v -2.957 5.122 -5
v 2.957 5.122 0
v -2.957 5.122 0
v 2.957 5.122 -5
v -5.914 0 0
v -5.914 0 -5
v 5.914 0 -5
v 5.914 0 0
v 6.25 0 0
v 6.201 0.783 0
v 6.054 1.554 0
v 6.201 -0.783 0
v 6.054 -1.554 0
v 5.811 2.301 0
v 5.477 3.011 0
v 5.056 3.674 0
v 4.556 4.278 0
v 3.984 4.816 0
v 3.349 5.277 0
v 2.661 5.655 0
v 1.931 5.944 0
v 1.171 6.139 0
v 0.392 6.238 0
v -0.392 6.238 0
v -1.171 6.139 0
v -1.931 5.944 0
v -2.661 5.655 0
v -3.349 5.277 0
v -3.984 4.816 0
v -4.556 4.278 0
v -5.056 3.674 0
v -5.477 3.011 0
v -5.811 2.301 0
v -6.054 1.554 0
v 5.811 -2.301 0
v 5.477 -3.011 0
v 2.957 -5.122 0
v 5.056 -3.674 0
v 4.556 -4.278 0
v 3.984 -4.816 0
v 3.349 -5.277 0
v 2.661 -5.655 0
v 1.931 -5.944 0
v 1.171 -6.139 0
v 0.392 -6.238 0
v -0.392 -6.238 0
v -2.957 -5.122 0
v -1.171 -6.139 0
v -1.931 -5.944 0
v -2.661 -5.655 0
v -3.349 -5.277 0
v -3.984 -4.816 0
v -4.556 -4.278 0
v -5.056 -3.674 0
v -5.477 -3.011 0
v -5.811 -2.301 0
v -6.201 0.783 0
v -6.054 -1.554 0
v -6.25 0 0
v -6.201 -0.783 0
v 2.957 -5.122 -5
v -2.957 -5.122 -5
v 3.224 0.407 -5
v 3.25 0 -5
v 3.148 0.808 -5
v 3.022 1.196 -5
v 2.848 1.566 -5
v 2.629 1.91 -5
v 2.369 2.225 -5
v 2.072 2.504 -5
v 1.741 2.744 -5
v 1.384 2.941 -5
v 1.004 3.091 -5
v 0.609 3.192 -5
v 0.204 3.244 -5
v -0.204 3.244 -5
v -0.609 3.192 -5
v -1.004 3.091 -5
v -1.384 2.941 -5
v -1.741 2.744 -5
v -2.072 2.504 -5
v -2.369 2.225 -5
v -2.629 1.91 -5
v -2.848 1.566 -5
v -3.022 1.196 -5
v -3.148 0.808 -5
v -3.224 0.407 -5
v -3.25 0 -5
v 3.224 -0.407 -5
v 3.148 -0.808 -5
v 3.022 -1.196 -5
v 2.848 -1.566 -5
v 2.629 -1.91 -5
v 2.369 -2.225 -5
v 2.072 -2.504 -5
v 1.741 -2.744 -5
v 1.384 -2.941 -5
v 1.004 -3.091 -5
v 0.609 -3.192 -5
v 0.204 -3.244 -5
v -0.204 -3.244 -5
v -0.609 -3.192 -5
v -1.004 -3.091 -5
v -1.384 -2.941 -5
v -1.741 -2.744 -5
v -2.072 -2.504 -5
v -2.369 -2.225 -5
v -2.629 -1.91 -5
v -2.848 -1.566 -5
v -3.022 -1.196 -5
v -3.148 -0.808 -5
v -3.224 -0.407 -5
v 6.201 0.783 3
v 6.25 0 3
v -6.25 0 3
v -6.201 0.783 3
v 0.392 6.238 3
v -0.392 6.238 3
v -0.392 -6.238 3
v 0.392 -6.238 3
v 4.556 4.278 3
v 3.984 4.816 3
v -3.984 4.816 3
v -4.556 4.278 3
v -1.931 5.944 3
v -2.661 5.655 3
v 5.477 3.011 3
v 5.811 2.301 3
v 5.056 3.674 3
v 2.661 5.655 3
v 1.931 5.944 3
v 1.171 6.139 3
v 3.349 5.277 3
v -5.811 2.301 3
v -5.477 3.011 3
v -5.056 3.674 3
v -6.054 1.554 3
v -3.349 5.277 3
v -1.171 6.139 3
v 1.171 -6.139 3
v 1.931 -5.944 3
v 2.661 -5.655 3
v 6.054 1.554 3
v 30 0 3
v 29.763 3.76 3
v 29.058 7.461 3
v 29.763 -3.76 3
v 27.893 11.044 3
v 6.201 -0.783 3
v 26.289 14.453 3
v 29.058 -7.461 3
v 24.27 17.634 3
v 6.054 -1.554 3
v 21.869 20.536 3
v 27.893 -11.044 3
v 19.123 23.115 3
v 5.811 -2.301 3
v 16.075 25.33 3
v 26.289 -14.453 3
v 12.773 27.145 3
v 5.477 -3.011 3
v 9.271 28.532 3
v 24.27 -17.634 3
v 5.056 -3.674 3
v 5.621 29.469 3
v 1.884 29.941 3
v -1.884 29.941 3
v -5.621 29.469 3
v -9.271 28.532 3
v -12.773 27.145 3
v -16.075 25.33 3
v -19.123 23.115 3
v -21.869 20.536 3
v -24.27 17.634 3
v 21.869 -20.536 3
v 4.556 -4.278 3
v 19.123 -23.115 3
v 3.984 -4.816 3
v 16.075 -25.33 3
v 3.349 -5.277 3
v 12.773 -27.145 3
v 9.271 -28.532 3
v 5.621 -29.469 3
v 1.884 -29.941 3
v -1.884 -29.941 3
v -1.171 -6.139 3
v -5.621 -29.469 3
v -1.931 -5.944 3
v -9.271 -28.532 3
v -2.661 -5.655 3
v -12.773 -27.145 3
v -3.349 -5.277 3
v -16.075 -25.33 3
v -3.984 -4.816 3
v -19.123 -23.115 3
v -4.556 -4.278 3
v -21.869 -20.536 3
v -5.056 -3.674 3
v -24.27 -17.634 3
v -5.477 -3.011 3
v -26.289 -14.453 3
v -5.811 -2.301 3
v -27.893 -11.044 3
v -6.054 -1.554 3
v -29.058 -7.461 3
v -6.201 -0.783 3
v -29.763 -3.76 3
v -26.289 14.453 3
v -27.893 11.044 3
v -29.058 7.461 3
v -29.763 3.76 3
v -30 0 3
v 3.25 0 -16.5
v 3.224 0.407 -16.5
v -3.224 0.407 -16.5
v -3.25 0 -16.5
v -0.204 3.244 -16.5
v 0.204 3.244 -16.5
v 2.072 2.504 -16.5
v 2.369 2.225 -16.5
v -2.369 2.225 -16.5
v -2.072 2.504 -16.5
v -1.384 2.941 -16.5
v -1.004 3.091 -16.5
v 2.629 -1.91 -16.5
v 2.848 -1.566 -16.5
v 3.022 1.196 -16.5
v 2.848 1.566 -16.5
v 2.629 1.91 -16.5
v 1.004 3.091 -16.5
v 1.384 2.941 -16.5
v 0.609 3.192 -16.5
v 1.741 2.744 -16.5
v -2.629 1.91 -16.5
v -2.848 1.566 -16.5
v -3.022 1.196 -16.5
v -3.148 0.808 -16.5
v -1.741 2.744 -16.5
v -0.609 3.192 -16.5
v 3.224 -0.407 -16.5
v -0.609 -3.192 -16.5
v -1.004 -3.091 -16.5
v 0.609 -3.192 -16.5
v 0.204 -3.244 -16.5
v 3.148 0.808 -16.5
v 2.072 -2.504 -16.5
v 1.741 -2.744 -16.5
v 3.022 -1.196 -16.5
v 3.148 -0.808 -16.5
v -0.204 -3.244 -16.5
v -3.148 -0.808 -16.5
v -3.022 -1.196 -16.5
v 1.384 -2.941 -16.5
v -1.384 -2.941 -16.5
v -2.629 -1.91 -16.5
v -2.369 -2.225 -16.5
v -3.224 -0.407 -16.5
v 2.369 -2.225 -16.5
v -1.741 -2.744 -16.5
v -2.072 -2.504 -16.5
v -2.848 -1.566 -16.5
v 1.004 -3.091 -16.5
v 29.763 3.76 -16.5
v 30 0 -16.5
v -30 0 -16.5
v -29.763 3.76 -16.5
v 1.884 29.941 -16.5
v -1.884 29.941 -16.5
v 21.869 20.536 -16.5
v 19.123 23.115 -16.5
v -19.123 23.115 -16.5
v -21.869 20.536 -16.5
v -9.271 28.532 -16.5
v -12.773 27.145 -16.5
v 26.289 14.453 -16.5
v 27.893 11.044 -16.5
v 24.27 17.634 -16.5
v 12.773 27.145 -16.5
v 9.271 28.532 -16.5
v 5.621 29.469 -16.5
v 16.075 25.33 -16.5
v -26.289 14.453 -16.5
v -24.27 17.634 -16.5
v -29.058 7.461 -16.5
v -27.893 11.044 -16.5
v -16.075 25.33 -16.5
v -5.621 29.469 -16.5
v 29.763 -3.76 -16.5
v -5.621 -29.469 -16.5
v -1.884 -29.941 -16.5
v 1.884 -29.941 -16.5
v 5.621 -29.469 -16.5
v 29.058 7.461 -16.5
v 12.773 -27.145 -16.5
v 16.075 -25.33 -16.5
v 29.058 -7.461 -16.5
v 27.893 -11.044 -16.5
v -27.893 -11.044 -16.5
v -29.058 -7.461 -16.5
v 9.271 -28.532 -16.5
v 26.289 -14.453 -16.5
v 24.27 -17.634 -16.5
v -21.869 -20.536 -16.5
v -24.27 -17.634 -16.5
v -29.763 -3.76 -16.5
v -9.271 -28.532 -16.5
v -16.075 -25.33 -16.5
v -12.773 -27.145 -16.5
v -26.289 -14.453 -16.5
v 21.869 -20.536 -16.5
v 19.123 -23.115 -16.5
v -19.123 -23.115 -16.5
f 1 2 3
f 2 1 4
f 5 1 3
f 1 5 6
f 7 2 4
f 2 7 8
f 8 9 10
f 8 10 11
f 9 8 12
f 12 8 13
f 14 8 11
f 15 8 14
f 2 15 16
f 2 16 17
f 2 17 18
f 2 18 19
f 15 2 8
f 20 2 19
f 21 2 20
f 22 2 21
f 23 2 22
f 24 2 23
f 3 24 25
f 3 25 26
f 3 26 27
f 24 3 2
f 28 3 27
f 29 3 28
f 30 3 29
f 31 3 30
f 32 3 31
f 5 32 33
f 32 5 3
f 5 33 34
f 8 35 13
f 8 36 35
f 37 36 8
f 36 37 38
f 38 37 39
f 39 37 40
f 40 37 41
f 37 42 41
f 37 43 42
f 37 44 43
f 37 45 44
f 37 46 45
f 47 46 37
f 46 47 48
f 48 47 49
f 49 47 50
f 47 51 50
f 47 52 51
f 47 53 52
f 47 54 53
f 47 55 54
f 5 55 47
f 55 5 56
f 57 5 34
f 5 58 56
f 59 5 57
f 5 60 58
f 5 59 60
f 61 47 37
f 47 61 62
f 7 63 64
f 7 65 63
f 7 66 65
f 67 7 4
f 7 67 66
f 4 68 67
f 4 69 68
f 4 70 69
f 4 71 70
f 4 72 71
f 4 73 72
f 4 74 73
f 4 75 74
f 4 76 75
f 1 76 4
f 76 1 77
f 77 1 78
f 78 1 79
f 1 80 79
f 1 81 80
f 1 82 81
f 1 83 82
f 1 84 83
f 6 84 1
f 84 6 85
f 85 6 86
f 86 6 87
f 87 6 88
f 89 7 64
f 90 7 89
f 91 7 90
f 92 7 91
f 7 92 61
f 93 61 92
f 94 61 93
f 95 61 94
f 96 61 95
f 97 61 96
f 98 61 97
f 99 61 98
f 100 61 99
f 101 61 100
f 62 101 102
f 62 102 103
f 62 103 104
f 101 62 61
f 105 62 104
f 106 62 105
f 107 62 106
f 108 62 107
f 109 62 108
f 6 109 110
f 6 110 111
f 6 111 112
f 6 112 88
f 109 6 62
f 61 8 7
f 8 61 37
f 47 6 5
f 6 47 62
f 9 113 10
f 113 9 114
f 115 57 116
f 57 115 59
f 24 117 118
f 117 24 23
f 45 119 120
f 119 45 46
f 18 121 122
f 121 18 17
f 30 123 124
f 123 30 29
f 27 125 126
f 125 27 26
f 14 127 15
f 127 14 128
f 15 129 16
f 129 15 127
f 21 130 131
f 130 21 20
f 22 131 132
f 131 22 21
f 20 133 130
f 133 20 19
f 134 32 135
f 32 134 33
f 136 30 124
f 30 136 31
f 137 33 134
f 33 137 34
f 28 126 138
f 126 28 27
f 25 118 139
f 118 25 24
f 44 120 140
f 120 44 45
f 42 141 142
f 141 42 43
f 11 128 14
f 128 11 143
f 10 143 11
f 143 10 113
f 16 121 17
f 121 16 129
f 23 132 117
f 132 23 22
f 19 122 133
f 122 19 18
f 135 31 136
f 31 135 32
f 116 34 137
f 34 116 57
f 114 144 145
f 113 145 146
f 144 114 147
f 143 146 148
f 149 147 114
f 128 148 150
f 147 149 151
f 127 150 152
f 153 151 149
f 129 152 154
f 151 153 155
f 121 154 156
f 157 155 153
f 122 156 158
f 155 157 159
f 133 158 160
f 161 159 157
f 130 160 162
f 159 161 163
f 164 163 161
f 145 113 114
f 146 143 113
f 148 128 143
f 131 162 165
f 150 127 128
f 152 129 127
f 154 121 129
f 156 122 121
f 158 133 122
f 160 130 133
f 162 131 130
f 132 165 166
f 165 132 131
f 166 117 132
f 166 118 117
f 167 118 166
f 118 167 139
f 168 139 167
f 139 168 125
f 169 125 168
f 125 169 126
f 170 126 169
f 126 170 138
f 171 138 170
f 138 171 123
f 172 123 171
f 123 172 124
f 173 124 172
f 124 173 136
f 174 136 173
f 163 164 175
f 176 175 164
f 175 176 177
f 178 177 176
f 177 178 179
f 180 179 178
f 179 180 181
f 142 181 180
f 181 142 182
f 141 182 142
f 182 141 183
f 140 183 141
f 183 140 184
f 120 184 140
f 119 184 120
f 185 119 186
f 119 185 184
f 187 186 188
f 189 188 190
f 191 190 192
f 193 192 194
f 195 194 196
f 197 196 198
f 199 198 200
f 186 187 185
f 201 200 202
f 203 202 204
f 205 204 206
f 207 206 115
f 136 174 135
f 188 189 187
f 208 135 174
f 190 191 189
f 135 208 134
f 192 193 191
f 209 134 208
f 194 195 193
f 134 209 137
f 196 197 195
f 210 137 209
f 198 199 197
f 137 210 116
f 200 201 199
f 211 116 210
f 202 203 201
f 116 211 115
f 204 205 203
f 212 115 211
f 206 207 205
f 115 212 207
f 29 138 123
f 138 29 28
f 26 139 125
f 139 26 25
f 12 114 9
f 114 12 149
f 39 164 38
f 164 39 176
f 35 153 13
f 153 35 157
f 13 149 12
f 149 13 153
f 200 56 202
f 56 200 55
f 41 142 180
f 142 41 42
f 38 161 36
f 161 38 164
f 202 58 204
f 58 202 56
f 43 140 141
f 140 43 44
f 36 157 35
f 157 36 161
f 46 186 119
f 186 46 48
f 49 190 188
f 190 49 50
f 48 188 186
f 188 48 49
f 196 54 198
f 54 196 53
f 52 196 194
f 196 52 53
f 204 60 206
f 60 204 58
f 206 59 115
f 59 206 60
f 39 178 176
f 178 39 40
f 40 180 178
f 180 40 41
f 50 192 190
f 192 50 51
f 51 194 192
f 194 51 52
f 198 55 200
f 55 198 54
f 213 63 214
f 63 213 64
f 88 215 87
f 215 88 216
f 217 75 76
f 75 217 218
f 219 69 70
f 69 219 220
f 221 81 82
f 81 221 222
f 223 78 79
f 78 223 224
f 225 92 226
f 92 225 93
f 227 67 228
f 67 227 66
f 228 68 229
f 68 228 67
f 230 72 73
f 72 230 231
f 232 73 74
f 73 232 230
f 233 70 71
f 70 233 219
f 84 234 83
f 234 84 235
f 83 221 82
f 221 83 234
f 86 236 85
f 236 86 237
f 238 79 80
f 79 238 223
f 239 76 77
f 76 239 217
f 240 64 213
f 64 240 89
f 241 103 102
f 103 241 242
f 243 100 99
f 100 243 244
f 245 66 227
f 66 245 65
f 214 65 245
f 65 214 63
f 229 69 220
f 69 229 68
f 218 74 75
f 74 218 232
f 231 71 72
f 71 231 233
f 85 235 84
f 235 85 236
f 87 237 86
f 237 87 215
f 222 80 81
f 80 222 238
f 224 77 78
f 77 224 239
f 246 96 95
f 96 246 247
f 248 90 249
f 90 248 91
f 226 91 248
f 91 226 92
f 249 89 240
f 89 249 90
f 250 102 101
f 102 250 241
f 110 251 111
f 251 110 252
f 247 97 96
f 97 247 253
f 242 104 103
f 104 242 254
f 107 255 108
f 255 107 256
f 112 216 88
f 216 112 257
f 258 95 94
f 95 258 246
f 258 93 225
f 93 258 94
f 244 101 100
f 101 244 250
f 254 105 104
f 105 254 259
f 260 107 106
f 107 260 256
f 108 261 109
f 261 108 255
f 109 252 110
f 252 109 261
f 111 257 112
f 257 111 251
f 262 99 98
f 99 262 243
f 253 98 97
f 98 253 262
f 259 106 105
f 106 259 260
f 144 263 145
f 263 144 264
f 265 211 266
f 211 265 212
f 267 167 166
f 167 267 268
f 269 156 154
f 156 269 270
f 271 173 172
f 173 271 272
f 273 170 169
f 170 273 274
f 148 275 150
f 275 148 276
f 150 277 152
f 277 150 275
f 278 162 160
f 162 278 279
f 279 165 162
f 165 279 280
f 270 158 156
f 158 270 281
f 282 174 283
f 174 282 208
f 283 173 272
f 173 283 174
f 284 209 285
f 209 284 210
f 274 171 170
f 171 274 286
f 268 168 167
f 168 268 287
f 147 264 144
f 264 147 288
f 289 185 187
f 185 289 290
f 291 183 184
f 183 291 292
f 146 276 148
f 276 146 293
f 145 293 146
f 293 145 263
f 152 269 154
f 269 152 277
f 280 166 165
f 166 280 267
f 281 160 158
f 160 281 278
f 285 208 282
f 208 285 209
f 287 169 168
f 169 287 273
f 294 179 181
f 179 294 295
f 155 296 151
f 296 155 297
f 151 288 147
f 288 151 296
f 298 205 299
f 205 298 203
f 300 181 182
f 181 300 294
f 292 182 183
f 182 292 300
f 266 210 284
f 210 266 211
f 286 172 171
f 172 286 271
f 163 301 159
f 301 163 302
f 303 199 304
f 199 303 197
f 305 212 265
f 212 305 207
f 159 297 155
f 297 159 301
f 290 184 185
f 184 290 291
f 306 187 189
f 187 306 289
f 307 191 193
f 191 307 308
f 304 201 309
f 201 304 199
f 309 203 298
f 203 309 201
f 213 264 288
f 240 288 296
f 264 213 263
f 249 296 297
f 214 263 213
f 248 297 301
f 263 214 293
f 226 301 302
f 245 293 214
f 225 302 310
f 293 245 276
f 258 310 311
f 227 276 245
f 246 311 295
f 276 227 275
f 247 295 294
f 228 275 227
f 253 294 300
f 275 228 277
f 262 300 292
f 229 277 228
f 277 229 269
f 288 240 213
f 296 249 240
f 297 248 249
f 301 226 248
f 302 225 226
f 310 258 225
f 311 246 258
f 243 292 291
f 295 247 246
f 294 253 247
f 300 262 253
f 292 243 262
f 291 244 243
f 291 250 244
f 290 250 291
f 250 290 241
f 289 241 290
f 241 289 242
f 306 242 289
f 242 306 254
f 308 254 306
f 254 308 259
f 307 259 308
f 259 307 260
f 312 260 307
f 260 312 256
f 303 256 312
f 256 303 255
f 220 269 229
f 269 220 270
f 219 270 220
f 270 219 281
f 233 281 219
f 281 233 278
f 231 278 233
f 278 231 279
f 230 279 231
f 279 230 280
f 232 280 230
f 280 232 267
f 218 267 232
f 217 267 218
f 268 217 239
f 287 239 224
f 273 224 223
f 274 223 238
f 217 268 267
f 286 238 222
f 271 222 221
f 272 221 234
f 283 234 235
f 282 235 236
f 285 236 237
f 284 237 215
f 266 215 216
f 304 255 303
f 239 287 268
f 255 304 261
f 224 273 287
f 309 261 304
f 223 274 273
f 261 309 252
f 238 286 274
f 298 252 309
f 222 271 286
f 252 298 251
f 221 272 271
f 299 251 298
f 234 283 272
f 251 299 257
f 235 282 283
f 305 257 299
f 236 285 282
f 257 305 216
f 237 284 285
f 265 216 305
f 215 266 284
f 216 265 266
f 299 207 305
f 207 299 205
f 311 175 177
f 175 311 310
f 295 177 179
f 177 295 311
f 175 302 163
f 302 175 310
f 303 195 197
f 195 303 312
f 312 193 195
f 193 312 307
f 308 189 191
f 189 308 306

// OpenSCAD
$fn = 50;


difference() {
	union() {
		translate(v = [0, 0, -16.5000000000]) {
			cylinder(h = 19.5000000000, r = 30.0000000000);
		}
	}
	union() {
		translate(v = [0, 0, 0]) {
			rotate(a = [0, 0, 0]) {
				difference() {
					union() {
						translate(v = [0, 0, -5]) {
							linear_extrude(height = 5) {
								polygon(points = [[5.9142500000, 0.0000000000], [2.9571250000, 5.1218907443], [-2.9571250000, 5.1218907443], [-5.9142500000, 0.0000000000], [-2.9571250000, -5.1218907443], [2.9571250000, -5.1218907443]]);
							}
						}
					}
					union();
				}
			}
		}
		#cylinder(h = 3, r = 6.2500000000);
		#translate(v = [0, 0, -100.0000000000]) {
			cylinder(h = 200, r = 3.2500000000);
		}
	}
}
